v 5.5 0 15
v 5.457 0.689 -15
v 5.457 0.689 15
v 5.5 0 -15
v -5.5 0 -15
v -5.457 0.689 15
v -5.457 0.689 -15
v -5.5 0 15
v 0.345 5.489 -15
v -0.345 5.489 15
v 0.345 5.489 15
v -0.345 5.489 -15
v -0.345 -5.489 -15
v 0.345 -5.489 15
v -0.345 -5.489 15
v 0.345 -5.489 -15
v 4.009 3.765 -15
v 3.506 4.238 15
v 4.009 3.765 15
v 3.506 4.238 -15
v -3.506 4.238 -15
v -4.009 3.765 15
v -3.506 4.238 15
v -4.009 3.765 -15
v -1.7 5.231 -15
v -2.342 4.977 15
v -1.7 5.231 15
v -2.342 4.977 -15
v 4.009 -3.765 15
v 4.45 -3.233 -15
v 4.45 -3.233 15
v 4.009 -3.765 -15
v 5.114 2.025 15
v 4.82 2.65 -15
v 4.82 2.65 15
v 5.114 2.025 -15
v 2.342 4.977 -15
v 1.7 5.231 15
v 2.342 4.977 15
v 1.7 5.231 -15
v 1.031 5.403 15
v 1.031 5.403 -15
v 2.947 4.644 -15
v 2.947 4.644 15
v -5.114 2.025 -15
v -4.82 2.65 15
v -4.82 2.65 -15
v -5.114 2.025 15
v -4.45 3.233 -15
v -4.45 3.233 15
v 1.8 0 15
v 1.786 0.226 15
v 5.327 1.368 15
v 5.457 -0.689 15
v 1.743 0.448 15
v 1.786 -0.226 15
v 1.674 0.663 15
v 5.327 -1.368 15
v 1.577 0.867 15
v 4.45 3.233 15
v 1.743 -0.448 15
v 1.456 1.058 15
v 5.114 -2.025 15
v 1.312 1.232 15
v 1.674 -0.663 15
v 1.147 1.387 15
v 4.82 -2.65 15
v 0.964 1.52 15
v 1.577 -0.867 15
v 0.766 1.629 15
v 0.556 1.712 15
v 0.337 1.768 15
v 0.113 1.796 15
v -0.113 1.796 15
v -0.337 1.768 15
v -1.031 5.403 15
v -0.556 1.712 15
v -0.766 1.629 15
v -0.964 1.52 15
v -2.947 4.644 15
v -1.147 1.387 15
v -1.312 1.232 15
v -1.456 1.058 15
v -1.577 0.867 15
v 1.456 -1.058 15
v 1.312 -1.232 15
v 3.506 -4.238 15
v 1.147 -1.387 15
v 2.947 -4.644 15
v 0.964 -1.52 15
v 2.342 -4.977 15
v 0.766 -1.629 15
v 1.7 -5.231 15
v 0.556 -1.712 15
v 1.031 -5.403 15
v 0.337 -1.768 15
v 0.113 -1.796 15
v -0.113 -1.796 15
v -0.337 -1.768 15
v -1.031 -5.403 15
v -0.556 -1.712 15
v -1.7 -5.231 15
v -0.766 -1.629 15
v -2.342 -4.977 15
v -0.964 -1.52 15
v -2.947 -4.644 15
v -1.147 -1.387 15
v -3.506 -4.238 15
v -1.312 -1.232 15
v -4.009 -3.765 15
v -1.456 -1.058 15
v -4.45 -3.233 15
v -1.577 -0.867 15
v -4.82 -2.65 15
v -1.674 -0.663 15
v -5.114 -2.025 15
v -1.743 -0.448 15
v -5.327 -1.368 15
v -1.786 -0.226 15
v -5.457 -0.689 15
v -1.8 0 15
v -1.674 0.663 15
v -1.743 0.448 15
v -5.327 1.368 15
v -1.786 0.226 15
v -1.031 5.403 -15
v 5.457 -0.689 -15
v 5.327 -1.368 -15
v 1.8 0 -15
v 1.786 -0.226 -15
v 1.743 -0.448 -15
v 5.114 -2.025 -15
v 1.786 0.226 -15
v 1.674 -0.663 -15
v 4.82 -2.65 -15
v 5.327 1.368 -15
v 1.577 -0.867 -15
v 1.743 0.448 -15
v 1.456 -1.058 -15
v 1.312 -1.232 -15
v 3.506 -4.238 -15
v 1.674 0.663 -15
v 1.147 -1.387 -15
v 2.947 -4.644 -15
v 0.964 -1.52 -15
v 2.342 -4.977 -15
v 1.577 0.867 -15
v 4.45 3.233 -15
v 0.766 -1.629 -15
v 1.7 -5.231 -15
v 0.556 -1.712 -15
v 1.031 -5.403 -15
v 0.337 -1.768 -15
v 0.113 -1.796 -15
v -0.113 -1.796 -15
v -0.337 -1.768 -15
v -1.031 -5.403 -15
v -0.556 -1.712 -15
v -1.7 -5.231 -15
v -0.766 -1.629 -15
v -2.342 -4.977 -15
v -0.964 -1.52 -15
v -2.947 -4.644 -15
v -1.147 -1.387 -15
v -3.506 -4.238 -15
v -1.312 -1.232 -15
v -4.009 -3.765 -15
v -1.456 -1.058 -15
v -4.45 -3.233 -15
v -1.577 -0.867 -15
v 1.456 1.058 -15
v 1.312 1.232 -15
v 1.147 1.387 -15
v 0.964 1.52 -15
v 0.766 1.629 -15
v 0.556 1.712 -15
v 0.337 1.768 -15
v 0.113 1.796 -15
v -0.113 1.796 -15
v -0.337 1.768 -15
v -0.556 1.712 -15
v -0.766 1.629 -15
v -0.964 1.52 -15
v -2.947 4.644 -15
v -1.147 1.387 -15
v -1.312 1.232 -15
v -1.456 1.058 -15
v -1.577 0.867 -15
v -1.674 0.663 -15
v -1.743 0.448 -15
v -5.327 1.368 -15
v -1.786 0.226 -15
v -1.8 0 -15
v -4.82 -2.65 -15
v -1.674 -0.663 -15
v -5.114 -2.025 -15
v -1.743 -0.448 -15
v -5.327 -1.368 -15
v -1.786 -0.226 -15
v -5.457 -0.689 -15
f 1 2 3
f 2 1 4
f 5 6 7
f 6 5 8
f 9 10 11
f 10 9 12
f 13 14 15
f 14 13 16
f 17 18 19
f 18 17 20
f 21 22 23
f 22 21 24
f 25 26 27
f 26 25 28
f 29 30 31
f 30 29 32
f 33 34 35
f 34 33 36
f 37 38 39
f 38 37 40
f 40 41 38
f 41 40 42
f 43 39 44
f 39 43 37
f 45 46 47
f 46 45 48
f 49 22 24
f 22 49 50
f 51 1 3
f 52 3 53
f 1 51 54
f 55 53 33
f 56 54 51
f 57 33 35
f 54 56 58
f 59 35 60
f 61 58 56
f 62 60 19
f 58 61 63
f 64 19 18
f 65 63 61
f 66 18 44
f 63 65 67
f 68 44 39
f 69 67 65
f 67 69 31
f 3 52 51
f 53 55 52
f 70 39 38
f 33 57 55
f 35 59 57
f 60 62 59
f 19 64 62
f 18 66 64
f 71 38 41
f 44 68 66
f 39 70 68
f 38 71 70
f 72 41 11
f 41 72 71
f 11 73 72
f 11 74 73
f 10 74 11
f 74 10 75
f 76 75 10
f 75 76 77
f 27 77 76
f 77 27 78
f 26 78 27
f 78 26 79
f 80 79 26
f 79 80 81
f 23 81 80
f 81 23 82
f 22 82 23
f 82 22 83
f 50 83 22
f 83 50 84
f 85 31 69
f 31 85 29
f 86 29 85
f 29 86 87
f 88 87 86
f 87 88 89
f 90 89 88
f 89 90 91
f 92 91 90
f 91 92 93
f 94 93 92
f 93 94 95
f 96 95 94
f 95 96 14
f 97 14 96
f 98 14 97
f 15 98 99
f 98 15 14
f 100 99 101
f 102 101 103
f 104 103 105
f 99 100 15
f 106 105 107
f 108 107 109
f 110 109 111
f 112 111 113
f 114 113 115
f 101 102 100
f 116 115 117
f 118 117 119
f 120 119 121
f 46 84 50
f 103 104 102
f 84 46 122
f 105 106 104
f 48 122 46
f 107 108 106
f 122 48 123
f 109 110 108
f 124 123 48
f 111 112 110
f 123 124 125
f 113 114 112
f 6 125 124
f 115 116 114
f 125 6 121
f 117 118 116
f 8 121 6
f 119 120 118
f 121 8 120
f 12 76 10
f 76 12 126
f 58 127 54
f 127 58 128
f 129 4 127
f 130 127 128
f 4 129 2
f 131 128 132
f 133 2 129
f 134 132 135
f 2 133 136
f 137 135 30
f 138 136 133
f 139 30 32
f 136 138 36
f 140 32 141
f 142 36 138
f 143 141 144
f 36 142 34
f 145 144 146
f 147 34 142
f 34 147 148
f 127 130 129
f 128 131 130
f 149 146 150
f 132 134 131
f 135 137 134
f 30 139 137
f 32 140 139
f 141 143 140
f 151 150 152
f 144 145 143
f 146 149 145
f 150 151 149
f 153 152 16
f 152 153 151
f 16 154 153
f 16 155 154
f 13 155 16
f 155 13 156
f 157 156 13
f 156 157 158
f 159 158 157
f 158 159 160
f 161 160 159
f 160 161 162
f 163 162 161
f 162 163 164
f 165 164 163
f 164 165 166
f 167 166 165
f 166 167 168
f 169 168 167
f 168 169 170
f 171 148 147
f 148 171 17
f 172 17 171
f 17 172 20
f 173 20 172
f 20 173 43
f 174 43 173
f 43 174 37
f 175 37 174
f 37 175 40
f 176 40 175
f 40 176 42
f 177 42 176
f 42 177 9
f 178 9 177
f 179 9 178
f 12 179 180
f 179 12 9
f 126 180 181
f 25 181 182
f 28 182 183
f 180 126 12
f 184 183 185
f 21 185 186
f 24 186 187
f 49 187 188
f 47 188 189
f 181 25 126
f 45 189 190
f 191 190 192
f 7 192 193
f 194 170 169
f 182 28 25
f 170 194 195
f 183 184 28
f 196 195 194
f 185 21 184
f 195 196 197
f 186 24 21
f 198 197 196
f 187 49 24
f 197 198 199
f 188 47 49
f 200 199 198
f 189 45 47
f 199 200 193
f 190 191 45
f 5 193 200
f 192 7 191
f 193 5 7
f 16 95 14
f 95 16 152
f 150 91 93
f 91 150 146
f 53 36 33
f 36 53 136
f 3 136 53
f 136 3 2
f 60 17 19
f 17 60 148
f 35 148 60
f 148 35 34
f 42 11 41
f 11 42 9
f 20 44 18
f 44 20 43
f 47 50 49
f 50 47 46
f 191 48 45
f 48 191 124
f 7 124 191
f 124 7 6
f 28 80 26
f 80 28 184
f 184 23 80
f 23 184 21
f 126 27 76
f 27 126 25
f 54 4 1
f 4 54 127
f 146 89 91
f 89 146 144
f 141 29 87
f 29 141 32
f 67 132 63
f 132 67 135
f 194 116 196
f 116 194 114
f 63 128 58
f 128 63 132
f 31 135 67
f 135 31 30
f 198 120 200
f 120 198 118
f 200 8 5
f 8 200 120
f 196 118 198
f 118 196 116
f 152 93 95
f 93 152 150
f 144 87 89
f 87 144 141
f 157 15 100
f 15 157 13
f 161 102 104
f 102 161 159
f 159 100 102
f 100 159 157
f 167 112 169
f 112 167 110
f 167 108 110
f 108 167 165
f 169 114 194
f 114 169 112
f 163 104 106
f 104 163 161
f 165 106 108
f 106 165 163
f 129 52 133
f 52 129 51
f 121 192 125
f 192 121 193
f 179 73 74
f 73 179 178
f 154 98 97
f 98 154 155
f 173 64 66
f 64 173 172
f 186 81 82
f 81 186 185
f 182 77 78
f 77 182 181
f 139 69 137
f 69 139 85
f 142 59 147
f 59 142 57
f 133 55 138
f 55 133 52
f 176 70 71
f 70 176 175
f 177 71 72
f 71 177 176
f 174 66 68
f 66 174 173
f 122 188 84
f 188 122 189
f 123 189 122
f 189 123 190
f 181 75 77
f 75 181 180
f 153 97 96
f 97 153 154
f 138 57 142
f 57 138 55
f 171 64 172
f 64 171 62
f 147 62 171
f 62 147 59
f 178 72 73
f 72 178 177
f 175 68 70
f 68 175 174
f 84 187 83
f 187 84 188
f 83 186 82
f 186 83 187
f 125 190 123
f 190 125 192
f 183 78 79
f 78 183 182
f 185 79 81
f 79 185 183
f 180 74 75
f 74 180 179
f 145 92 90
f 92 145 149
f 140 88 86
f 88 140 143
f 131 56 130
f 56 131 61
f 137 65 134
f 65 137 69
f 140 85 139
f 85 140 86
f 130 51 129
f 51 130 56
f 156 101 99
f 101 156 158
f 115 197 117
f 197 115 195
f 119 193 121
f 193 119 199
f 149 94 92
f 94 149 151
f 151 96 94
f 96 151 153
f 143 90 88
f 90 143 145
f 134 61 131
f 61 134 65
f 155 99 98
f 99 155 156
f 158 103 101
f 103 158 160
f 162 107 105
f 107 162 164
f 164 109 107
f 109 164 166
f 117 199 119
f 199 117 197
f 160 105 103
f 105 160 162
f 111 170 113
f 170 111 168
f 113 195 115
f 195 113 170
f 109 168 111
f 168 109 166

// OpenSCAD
$fn = 50;


difference() {
	union() {
		translate(v = [0, 0, -15.0000000000]) {
			cylinder(h = 30, r = 5.5000000000);
		}
	}
	union() {
		translate(v = [0, 0, -100.0000000000]) {
			cylinder(h = 200, r = 1.8000000000);
		}
	}
}
